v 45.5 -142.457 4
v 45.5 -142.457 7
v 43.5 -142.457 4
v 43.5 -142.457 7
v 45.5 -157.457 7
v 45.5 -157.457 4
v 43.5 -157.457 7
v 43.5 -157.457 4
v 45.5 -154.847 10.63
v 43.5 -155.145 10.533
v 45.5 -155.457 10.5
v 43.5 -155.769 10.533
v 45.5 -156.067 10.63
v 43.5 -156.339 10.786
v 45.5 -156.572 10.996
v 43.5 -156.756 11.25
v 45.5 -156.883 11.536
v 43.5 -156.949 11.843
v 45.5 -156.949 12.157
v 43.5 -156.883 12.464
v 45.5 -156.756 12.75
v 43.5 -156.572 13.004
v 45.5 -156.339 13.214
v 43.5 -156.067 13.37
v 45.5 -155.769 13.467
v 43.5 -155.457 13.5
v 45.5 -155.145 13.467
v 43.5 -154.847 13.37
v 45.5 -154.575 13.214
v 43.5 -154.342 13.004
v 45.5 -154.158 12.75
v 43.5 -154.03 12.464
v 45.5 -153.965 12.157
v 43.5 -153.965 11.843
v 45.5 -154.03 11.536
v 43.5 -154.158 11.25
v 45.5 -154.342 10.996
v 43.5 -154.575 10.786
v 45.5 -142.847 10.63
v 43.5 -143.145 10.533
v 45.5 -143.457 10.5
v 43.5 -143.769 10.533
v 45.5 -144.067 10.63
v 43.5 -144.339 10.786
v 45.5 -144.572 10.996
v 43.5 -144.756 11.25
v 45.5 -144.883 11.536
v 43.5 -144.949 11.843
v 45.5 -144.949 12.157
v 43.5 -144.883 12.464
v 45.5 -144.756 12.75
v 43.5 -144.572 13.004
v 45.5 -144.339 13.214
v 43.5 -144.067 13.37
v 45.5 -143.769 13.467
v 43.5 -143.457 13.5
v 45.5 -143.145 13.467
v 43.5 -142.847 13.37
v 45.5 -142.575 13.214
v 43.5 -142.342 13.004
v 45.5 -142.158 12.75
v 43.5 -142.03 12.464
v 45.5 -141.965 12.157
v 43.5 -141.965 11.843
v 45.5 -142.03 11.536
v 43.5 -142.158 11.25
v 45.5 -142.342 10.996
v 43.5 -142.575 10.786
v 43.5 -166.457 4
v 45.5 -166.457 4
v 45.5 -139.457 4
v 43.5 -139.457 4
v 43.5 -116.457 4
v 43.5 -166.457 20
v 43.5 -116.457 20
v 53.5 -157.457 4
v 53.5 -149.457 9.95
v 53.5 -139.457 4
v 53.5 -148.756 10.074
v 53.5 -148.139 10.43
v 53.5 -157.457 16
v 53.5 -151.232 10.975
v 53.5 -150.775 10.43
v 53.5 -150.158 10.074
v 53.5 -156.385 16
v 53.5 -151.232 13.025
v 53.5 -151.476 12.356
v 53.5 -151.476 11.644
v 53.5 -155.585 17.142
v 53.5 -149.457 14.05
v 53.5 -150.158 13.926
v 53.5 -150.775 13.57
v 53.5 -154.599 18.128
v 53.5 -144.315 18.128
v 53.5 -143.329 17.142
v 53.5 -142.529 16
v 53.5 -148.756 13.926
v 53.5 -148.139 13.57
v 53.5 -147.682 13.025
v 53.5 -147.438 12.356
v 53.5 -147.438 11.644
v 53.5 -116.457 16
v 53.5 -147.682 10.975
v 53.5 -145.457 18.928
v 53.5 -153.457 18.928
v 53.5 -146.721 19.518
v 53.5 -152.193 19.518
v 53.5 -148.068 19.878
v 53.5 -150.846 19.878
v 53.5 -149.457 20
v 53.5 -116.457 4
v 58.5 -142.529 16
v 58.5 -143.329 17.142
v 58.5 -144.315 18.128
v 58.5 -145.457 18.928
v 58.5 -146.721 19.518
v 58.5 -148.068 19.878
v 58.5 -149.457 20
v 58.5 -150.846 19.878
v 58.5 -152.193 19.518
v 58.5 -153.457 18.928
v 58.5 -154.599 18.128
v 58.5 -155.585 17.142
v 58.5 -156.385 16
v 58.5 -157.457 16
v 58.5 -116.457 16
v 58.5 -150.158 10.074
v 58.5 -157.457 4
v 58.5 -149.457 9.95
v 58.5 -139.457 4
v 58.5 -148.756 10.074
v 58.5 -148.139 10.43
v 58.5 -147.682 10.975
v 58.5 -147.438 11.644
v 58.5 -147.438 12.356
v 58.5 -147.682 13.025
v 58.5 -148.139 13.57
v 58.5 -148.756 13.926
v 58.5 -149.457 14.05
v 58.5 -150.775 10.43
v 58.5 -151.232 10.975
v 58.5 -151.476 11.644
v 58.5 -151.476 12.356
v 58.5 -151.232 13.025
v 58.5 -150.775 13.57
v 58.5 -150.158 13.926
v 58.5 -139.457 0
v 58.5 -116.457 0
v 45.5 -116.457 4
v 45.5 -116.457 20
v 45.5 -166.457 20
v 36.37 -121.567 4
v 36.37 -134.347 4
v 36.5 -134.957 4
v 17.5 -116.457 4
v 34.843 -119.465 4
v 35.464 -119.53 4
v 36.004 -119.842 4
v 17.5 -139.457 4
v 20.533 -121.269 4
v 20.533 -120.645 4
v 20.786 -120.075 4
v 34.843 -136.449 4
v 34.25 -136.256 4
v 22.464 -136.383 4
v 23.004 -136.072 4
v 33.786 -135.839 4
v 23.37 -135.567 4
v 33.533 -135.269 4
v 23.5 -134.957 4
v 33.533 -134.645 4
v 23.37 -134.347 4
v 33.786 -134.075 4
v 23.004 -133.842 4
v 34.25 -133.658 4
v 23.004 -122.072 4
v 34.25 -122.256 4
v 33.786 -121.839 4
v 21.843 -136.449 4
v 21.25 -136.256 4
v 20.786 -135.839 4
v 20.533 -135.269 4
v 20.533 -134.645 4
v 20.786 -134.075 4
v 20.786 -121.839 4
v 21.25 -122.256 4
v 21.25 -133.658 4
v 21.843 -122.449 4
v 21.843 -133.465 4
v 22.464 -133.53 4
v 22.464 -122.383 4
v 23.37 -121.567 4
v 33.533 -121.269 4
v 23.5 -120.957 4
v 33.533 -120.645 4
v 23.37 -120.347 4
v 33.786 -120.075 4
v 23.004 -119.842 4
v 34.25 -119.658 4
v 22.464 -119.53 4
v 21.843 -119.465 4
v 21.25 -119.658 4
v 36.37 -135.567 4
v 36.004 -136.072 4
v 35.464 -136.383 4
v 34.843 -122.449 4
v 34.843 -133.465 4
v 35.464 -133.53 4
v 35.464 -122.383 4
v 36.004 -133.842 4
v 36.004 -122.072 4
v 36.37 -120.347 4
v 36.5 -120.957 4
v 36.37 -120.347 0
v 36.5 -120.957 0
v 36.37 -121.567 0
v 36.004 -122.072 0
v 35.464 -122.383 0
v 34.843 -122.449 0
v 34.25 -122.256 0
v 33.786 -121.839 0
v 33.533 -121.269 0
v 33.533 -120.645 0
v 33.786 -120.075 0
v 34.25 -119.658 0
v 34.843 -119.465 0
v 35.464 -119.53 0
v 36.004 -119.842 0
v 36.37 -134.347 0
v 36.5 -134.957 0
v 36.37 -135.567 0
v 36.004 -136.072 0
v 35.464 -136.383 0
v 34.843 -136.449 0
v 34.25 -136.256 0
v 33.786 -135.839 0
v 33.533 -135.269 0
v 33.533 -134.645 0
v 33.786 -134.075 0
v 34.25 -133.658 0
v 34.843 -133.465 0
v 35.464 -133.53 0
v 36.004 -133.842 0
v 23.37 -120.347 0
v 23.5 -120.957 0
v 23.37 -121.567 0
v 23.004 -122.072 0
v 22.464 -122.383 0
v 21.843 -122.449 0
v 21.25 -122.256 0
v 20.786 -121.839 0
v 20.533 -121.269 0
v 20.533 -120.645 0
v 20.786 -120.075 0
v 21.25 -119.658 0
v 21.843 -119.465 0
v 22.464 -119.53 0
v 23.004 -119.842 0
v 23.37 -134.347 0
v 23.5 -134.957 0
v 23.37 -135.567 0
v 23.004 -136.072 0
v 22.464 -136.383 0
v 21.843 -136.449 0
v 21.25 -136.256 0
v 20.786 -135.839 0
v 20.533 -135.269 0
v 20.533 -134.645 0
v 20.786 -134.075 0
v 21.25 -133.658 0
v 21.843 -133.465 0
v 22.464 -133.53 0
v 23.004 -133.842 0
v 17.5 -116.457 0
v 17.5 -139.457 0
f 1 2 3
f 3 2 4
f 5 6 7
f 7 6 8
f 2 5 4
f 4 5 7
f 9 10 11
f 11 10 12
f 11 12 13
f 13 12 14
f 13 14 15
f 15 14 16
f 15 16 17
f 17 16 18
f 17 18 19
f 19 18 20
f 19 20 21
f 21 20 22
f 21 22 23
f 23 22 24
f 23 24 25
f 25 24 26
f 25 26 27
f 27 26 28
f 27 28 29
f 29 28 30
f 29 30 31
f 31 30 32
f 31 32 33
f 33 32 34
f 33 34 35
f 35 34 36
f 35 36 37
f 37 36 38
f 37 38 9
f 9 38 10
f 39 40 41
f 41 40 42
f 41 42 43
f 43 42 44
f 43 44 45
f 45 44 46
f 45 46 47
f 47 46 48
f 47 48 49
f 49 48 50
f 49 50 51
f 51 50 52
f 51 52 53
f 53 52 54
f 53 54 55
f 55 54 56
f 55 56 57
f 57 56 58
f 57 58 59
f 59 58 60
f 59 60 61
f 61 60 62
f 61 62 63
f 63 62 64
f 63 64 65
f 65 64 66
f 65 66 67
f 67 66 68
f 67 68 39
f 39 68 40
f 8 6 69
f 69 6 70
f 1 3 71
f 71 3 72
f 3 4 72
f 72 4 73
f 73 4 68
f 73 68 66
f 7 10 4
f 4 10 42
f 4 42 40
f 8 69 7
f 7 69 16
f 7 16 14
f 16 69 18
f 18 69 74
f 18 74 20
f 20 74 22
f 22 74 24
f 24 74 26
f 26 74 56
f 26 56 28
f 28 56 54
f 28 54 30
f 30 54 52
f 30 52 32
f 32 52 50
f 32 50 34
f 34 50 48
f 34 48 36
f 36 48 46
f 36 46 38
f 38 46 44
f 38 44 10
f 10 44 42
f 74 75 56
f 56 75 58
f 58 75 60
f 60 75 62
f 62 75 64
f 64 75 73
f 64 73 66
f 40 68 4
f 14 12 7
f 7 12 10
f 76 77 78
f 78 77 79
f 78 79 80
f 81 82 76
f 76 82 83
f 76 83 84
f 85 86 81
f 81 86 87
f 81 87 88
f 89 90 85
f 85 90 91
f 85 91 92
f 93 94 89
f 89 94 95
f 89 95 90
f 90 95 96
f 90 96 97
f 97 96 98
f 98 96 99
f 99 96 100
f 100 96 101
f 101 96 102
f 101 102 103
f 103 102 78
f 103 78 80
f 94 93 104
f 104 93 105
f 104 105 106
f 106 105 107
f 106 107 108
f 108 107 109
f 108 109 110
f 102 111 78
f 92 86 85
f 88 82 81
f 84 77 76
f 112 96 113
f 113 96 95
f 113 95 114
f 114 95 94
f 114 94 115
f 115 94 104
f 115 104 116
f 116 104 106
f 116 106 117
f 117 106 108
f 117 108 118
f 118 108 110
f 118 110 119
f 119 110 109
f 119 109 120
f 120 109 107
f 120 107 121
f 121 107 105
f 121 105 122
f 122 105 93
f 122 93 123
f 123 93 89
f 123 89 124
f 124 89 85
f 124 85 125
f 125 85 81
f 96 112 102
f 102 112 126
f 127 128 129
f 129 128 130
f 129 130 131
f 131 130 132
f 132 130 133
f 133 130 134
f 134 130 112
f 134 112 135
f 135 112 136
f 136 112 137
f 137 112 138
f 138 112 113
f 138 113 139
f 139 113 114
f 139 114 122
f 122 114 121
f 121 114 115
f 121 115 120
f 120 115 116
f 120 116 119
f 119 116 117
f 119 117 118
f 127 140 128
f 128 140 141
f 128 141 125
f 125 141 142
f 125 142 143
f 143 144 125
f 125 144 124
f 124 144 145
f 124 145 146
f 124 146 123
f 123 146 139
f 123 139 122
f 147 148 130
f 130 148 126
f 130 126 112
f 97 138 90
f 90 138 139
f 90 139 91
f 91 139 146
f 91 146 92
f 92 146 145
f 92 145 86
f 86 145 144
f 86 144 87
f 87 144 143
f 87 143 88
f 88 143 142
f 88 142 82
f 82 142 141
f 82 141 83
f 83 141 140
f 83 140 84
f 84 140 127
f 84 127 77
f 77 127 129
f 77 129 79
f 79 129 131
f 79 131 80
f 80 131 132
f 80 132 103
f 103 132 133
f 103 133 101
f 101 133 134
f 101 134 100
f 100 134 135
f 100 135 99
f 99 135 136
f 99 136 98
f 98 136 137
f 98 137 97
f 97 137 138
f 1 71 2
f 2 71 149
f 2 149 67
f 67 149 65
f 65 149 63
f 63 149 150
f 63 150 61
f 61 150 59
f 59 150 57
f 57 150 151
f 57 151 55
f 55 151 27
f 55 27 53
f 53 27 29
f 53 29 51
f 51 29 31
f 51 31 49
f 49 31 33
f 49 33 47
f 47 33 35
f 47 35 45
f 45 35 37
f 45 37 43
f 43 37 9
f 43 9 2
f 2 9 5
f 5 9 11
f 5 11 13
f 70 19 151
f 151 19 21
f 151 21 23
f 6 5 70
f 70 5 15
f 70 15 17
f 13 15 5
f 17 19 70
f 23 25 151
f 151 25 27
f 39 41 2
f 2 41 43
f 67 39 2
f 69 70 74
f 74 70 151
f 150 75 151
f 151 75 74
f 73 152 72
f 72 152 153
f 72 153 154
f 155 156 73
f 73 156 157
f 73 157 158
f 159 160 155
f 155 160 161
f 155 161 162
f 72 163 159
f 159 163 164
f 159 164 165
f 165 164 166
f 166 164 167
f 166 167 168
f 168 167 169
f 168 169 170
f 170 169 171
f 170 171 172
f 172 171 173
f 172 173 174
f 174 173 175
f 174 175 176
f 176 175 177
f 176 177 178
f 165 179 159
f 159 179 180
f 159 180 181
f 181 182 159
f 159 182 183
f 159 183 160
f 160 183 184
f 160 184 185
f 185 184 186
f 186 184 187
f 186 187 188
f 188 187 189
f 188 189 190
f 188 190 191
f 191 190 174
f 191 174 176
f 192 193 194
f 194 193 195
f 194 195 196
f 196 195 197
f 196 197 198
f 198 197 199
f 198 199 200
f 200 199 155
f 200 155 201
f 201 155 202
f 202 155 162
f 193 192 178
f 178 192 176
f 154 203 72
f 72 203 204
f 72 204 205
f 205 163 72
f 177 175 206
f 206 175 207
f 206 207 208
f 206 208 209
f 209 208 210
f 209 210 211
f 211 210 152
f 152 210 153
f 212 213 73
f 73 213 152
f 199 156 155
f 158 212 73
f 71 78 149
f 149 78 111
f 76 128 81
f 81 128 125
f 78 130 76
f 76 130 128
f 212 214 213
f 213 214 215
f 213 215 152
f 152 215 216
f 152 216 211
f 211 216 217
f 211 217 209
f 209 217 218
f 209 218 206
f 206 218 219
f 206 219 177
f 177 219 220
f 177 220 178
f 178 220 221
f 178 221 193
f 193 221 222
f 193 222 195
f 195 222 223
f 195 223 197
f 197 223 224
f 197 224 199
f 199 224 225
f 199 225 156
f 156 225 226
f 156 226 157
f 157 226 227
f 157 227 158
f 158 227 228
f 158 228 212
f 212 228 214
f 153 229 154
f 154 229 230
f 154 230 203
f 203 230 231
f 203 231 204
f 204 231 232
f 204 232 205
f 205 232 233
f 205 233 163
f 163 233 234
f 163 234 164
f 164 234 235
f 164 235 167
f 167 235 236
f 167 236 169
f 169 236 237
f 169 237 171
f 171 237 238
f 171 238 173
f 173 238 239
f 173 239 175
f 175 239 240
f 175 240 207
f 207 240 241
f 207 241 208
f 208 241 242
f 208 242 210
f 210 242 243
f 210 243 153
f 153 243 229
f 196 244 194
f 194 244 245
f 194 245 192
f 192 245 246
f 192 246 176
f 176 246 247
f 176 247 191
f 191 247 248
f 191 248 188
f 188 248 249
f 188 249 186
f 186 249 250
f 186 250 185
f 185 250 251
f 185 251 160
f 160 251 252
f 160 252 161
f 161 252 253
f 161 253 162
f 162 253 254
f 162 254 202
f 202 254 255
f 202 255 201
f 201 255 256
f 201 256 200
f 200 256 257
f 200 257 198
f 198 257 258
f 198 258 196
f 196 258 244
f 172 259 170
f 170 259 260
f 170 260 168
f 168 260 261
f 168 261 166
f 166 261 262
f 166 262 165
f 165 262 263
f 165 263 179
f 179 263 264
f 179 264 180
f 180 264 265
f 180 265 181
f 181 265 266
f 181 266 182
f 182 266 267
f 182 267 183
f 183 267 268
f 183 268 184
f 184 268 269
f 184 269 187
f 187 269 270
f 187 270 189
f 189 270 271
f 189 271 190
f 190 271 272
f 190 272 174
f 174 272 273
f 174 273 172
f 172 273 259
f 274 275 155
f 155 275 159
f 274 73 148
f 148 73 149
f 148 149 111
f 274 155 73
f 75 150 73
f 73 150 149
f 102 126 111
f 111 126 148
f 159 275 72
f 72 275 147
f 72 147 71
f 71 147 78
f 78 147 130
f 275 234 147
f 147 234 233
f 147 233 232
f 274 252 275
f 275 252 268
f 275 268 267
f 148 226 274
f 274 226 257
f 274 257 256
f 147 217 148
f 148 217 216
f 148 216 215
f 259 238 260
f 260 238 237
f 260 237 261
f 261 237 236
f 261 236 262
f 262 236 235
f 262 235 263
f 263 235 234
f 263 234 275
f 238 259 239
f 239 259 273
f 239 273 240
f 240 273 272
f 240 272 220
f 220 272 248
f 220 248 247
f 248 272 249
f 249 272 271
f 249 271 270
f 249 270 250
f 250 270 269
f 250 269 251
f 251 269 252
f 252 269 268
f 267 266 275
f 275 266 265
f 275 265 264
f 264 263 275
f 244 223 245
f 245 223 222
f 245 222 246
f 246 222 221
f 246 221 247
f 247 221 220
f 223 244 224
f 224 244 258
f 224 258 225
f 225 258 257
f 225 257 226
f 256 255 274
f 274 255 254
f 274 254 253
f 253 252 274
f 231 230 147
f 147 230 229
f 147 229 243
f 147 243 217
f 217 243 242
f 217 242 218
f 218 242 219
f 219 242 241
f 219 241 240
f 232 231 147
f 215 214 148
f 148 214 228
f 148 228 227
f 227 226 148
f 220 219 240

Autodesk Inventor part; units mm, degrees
ref_plane "YZ Plane" through (0, 0, 0) normal (1, 0, 0) x (0, 1, 0)
ref_plane "XZ Plane" through (0, 0, 0) normal (0, 1, 0) x (-1, 0, 0)
ref_plane "РабПлоскость1" through (0, 0, 0) normal (0, 0, 1) x (1, 0, 0)
sketch "Эскиз1" plane through (0, 0, 0) normal (0, 0, 1) x (1, 0, 0)
  circle A0 centre (22, -134.9569) radius 1.5
  circle A1 centre (22, -120.9569) radius 1.5
  circle A2 centre (35, -134.9569) radius 1.5
  circle A3 centre (35, -120.9569) radius 1.5
  line L0 (25.3767, -96.9033) -> (9.3929, -97.3164) projected
  line L1 (46.6684, -70.3473) -> (46.1406, -50.3565) projected
  line L2 (48, -90) -> (48, -70.3473) projected
  line L3 (17.5, -139.4569) -> (58.5, -139.4569)
  line L4 (58.5, -139.4569) -> (58.5, -116.4569)
  line L5 (58.5, -116.4569) -> (17.5, -116.4569)
  line L6 (17.5, -116.4569) -> (17.5, -139.4569)
  ellipse E0 centre (13.2497, -96.1261) end of major axis (24.2459, -95.8358) minor radius 0.1657 projected
  point P0 (0, 0)
  point P1 (12.1906, -152.9569)
  dimension "d0" = 18
  dimension "d2" = 14
  dimension "d3" = 14
  dimension "d4" = 3
  dimension "d5" = 3
  dimension "d6" = 3
  dimension "d7" = 3
  dimension "d8" = 13
  dimension "d9" = 13
  dimension "d10" = 13
  dimension "d11" = 13
  dimension "d12" = 23
  dimension "d13" = 41
  dimension "d14" = 4.5
  dimension "d15" = 4.5
  dimension "d33" = 23.5
  dimension "d34" = 23.5
extrude "Выдавливание1" add sketch "Эскиз1" along normal blind 4 contours L6 L5 L4 L3
sketch "Эскиз2" plane through (0, 0, 4) normal (0, 0, 1) x (1, 0, 0)
  line L0 (43.5, -166.4569) -> (45.5, -166.4569)
  line L1 (45.5, -166.4569) -> (45.5, -116.4569)
  line L2 (45.5, -116.4569) -> (43.5, -116.4569)
  line L3 (43.5, -116.4569) -> (43.5, -166.4569)
  line L4 (53.5, -116.4569) -> (58.5, -116.4569)
  line L5 (58.5, -116.4569) -> (58.5, -157.4569)
  line L6 (58.5, -157.4569) -> (53.5, -157.4569)
  line L7 (53.5, -157.4569) -> (53.5, -116.4569)
  line L8 (58.5, -139.4569) -> (58.5, -116.4569) projected
  line L9 (58.5, -116.4569) -> (17.5, -116.4569) projected
  line L10 (17.5, -139.4569) -> (58.5, -139.4569) projected
  point P0 (0, 0)
  point P1 (58.5, -139.4569)
  point P2 (53.5, -139.4569)
  dimension "d18" = 8
  dimension "d19" = 18
  dimension "d20" = 5
  dimension "d21" = 2
  dimension "d22" = 50
extrude "Выдавливание2" add sketch "Эскиз2" along normal blind 12 contours L10 L5 L6 L7 | L7 L4 L5 L10
sketch "Эскиз3" plane through (53.5, -157.4569, 4) normal (-1, 0, 0) x (0, 0, 1)
  line L0 (0, 18) -> (0, 41)
  line L1 (0, 18) -> (0, -9) construction
  line L2 (0, -9) -> (6, -9) construction
  line L3 (6, 41) -> (6, -9) construction
  line L4 (0, 41) -> (6, 41)
  circle A0 centre (8, 8) radius 1.55
  line L5 (-4, 18) -> (0, 18) projected
  line L6 (12, 41) -> (12, 0) projected
  line L7 (0, 0) -> (12, 0) projected
  point P0 (-4, 157.4569)
  dimension "d26" = 3.1
  dimension "d40" = 4
  dimension "d41" = 8
extrude "Выдавливание3" cut sketch "Эскиз3" against normal through all
thread "Резьба1" size "M3x0.5" class "6H" standard "ANSI Metric M Profile" full length
extrude "Выдавливание4" add sketch "Эскиз2" along normal blind 16 contours L3 L10 L1 L0 | L3 L2 L1 L10
sketch "Эскиз4" plane through (58.5, -139.4569, 0) normal (1, 0, 0) x (0, 0, -1)
  circle A0 centre (-12, -10) radius 1.55 projected
  circle A1 centre (-12, -10) radius 2.05
  circle A2 centre (-12, -10) radius 8
  line L0 (-4, -18) -> (-16, -18) projected
  point P0 (0, 139.4569)
  dimension "d35" = 4.1
extrude "Выдавливание5" cut sketch "Эскиз4" against normal up to surface (5 mm away) contours A0 | A1
extrude "Выдавливание6" add sketch "Эскиз4" against normal up to surface (5 mm away) contours A2
sketch "Эскиз5" plane through (43.5, -166.4569, 4) normal (-1, 0, 0) x (0, 0, 1)
  circle A0 centre (8, 17) radius 2.05 projected
  line L0 (0, 27) -> (0, 9) projected
  line L1 (0, 9) -> (12, 9) projected
  line L2 (12, 50) -> (12, 23.9282) projected
  line L3 (0, 50) -> (12, 50) projected
  line L4 (0, 27) -> (0, 50) projected
  arc A1 (12, 10.0718) -> (12, 23.9282) centre (8, 17) ccw projected
  line L5 (12, 10.0718) -> (12, 9) projected
  line L6 (16, 17) -> (0, 17) construction
  line L7 (16, 50) -> (16, 0) projected
  circle A2 centre (8, 11) radius 1.5
  circle A3 centre (8, 23) radius 1.5
  line L8 (8, 11) -> (8, 23) construction
  line L9 (0, 9) -> (3, 9)
  line L10 (3, 9) -> (3, 24)
  line L11 (3, 24) -> (0, 24)
  line L12 (0, 24) -> (0, 9)
  point P0 (-4, 166.4569)
  point P1 (8, 17)
  point P2 (0, 24)
  point P3 (3, 9)
  dimension "d49" = 3
  dimension "d50" = 3
  dimension "d52" = 15
  dimension "d53" = 6
  dimension "d54" = 5
  dimension "d55" = 15
extrude "Выдавливание7" cut sketch "Эскиз5" against normal blind 10 contours L11 L10 L1 L0 | A2 | A3
equation "\"d34\" = d33"
properties part number "робот-энкодер"
